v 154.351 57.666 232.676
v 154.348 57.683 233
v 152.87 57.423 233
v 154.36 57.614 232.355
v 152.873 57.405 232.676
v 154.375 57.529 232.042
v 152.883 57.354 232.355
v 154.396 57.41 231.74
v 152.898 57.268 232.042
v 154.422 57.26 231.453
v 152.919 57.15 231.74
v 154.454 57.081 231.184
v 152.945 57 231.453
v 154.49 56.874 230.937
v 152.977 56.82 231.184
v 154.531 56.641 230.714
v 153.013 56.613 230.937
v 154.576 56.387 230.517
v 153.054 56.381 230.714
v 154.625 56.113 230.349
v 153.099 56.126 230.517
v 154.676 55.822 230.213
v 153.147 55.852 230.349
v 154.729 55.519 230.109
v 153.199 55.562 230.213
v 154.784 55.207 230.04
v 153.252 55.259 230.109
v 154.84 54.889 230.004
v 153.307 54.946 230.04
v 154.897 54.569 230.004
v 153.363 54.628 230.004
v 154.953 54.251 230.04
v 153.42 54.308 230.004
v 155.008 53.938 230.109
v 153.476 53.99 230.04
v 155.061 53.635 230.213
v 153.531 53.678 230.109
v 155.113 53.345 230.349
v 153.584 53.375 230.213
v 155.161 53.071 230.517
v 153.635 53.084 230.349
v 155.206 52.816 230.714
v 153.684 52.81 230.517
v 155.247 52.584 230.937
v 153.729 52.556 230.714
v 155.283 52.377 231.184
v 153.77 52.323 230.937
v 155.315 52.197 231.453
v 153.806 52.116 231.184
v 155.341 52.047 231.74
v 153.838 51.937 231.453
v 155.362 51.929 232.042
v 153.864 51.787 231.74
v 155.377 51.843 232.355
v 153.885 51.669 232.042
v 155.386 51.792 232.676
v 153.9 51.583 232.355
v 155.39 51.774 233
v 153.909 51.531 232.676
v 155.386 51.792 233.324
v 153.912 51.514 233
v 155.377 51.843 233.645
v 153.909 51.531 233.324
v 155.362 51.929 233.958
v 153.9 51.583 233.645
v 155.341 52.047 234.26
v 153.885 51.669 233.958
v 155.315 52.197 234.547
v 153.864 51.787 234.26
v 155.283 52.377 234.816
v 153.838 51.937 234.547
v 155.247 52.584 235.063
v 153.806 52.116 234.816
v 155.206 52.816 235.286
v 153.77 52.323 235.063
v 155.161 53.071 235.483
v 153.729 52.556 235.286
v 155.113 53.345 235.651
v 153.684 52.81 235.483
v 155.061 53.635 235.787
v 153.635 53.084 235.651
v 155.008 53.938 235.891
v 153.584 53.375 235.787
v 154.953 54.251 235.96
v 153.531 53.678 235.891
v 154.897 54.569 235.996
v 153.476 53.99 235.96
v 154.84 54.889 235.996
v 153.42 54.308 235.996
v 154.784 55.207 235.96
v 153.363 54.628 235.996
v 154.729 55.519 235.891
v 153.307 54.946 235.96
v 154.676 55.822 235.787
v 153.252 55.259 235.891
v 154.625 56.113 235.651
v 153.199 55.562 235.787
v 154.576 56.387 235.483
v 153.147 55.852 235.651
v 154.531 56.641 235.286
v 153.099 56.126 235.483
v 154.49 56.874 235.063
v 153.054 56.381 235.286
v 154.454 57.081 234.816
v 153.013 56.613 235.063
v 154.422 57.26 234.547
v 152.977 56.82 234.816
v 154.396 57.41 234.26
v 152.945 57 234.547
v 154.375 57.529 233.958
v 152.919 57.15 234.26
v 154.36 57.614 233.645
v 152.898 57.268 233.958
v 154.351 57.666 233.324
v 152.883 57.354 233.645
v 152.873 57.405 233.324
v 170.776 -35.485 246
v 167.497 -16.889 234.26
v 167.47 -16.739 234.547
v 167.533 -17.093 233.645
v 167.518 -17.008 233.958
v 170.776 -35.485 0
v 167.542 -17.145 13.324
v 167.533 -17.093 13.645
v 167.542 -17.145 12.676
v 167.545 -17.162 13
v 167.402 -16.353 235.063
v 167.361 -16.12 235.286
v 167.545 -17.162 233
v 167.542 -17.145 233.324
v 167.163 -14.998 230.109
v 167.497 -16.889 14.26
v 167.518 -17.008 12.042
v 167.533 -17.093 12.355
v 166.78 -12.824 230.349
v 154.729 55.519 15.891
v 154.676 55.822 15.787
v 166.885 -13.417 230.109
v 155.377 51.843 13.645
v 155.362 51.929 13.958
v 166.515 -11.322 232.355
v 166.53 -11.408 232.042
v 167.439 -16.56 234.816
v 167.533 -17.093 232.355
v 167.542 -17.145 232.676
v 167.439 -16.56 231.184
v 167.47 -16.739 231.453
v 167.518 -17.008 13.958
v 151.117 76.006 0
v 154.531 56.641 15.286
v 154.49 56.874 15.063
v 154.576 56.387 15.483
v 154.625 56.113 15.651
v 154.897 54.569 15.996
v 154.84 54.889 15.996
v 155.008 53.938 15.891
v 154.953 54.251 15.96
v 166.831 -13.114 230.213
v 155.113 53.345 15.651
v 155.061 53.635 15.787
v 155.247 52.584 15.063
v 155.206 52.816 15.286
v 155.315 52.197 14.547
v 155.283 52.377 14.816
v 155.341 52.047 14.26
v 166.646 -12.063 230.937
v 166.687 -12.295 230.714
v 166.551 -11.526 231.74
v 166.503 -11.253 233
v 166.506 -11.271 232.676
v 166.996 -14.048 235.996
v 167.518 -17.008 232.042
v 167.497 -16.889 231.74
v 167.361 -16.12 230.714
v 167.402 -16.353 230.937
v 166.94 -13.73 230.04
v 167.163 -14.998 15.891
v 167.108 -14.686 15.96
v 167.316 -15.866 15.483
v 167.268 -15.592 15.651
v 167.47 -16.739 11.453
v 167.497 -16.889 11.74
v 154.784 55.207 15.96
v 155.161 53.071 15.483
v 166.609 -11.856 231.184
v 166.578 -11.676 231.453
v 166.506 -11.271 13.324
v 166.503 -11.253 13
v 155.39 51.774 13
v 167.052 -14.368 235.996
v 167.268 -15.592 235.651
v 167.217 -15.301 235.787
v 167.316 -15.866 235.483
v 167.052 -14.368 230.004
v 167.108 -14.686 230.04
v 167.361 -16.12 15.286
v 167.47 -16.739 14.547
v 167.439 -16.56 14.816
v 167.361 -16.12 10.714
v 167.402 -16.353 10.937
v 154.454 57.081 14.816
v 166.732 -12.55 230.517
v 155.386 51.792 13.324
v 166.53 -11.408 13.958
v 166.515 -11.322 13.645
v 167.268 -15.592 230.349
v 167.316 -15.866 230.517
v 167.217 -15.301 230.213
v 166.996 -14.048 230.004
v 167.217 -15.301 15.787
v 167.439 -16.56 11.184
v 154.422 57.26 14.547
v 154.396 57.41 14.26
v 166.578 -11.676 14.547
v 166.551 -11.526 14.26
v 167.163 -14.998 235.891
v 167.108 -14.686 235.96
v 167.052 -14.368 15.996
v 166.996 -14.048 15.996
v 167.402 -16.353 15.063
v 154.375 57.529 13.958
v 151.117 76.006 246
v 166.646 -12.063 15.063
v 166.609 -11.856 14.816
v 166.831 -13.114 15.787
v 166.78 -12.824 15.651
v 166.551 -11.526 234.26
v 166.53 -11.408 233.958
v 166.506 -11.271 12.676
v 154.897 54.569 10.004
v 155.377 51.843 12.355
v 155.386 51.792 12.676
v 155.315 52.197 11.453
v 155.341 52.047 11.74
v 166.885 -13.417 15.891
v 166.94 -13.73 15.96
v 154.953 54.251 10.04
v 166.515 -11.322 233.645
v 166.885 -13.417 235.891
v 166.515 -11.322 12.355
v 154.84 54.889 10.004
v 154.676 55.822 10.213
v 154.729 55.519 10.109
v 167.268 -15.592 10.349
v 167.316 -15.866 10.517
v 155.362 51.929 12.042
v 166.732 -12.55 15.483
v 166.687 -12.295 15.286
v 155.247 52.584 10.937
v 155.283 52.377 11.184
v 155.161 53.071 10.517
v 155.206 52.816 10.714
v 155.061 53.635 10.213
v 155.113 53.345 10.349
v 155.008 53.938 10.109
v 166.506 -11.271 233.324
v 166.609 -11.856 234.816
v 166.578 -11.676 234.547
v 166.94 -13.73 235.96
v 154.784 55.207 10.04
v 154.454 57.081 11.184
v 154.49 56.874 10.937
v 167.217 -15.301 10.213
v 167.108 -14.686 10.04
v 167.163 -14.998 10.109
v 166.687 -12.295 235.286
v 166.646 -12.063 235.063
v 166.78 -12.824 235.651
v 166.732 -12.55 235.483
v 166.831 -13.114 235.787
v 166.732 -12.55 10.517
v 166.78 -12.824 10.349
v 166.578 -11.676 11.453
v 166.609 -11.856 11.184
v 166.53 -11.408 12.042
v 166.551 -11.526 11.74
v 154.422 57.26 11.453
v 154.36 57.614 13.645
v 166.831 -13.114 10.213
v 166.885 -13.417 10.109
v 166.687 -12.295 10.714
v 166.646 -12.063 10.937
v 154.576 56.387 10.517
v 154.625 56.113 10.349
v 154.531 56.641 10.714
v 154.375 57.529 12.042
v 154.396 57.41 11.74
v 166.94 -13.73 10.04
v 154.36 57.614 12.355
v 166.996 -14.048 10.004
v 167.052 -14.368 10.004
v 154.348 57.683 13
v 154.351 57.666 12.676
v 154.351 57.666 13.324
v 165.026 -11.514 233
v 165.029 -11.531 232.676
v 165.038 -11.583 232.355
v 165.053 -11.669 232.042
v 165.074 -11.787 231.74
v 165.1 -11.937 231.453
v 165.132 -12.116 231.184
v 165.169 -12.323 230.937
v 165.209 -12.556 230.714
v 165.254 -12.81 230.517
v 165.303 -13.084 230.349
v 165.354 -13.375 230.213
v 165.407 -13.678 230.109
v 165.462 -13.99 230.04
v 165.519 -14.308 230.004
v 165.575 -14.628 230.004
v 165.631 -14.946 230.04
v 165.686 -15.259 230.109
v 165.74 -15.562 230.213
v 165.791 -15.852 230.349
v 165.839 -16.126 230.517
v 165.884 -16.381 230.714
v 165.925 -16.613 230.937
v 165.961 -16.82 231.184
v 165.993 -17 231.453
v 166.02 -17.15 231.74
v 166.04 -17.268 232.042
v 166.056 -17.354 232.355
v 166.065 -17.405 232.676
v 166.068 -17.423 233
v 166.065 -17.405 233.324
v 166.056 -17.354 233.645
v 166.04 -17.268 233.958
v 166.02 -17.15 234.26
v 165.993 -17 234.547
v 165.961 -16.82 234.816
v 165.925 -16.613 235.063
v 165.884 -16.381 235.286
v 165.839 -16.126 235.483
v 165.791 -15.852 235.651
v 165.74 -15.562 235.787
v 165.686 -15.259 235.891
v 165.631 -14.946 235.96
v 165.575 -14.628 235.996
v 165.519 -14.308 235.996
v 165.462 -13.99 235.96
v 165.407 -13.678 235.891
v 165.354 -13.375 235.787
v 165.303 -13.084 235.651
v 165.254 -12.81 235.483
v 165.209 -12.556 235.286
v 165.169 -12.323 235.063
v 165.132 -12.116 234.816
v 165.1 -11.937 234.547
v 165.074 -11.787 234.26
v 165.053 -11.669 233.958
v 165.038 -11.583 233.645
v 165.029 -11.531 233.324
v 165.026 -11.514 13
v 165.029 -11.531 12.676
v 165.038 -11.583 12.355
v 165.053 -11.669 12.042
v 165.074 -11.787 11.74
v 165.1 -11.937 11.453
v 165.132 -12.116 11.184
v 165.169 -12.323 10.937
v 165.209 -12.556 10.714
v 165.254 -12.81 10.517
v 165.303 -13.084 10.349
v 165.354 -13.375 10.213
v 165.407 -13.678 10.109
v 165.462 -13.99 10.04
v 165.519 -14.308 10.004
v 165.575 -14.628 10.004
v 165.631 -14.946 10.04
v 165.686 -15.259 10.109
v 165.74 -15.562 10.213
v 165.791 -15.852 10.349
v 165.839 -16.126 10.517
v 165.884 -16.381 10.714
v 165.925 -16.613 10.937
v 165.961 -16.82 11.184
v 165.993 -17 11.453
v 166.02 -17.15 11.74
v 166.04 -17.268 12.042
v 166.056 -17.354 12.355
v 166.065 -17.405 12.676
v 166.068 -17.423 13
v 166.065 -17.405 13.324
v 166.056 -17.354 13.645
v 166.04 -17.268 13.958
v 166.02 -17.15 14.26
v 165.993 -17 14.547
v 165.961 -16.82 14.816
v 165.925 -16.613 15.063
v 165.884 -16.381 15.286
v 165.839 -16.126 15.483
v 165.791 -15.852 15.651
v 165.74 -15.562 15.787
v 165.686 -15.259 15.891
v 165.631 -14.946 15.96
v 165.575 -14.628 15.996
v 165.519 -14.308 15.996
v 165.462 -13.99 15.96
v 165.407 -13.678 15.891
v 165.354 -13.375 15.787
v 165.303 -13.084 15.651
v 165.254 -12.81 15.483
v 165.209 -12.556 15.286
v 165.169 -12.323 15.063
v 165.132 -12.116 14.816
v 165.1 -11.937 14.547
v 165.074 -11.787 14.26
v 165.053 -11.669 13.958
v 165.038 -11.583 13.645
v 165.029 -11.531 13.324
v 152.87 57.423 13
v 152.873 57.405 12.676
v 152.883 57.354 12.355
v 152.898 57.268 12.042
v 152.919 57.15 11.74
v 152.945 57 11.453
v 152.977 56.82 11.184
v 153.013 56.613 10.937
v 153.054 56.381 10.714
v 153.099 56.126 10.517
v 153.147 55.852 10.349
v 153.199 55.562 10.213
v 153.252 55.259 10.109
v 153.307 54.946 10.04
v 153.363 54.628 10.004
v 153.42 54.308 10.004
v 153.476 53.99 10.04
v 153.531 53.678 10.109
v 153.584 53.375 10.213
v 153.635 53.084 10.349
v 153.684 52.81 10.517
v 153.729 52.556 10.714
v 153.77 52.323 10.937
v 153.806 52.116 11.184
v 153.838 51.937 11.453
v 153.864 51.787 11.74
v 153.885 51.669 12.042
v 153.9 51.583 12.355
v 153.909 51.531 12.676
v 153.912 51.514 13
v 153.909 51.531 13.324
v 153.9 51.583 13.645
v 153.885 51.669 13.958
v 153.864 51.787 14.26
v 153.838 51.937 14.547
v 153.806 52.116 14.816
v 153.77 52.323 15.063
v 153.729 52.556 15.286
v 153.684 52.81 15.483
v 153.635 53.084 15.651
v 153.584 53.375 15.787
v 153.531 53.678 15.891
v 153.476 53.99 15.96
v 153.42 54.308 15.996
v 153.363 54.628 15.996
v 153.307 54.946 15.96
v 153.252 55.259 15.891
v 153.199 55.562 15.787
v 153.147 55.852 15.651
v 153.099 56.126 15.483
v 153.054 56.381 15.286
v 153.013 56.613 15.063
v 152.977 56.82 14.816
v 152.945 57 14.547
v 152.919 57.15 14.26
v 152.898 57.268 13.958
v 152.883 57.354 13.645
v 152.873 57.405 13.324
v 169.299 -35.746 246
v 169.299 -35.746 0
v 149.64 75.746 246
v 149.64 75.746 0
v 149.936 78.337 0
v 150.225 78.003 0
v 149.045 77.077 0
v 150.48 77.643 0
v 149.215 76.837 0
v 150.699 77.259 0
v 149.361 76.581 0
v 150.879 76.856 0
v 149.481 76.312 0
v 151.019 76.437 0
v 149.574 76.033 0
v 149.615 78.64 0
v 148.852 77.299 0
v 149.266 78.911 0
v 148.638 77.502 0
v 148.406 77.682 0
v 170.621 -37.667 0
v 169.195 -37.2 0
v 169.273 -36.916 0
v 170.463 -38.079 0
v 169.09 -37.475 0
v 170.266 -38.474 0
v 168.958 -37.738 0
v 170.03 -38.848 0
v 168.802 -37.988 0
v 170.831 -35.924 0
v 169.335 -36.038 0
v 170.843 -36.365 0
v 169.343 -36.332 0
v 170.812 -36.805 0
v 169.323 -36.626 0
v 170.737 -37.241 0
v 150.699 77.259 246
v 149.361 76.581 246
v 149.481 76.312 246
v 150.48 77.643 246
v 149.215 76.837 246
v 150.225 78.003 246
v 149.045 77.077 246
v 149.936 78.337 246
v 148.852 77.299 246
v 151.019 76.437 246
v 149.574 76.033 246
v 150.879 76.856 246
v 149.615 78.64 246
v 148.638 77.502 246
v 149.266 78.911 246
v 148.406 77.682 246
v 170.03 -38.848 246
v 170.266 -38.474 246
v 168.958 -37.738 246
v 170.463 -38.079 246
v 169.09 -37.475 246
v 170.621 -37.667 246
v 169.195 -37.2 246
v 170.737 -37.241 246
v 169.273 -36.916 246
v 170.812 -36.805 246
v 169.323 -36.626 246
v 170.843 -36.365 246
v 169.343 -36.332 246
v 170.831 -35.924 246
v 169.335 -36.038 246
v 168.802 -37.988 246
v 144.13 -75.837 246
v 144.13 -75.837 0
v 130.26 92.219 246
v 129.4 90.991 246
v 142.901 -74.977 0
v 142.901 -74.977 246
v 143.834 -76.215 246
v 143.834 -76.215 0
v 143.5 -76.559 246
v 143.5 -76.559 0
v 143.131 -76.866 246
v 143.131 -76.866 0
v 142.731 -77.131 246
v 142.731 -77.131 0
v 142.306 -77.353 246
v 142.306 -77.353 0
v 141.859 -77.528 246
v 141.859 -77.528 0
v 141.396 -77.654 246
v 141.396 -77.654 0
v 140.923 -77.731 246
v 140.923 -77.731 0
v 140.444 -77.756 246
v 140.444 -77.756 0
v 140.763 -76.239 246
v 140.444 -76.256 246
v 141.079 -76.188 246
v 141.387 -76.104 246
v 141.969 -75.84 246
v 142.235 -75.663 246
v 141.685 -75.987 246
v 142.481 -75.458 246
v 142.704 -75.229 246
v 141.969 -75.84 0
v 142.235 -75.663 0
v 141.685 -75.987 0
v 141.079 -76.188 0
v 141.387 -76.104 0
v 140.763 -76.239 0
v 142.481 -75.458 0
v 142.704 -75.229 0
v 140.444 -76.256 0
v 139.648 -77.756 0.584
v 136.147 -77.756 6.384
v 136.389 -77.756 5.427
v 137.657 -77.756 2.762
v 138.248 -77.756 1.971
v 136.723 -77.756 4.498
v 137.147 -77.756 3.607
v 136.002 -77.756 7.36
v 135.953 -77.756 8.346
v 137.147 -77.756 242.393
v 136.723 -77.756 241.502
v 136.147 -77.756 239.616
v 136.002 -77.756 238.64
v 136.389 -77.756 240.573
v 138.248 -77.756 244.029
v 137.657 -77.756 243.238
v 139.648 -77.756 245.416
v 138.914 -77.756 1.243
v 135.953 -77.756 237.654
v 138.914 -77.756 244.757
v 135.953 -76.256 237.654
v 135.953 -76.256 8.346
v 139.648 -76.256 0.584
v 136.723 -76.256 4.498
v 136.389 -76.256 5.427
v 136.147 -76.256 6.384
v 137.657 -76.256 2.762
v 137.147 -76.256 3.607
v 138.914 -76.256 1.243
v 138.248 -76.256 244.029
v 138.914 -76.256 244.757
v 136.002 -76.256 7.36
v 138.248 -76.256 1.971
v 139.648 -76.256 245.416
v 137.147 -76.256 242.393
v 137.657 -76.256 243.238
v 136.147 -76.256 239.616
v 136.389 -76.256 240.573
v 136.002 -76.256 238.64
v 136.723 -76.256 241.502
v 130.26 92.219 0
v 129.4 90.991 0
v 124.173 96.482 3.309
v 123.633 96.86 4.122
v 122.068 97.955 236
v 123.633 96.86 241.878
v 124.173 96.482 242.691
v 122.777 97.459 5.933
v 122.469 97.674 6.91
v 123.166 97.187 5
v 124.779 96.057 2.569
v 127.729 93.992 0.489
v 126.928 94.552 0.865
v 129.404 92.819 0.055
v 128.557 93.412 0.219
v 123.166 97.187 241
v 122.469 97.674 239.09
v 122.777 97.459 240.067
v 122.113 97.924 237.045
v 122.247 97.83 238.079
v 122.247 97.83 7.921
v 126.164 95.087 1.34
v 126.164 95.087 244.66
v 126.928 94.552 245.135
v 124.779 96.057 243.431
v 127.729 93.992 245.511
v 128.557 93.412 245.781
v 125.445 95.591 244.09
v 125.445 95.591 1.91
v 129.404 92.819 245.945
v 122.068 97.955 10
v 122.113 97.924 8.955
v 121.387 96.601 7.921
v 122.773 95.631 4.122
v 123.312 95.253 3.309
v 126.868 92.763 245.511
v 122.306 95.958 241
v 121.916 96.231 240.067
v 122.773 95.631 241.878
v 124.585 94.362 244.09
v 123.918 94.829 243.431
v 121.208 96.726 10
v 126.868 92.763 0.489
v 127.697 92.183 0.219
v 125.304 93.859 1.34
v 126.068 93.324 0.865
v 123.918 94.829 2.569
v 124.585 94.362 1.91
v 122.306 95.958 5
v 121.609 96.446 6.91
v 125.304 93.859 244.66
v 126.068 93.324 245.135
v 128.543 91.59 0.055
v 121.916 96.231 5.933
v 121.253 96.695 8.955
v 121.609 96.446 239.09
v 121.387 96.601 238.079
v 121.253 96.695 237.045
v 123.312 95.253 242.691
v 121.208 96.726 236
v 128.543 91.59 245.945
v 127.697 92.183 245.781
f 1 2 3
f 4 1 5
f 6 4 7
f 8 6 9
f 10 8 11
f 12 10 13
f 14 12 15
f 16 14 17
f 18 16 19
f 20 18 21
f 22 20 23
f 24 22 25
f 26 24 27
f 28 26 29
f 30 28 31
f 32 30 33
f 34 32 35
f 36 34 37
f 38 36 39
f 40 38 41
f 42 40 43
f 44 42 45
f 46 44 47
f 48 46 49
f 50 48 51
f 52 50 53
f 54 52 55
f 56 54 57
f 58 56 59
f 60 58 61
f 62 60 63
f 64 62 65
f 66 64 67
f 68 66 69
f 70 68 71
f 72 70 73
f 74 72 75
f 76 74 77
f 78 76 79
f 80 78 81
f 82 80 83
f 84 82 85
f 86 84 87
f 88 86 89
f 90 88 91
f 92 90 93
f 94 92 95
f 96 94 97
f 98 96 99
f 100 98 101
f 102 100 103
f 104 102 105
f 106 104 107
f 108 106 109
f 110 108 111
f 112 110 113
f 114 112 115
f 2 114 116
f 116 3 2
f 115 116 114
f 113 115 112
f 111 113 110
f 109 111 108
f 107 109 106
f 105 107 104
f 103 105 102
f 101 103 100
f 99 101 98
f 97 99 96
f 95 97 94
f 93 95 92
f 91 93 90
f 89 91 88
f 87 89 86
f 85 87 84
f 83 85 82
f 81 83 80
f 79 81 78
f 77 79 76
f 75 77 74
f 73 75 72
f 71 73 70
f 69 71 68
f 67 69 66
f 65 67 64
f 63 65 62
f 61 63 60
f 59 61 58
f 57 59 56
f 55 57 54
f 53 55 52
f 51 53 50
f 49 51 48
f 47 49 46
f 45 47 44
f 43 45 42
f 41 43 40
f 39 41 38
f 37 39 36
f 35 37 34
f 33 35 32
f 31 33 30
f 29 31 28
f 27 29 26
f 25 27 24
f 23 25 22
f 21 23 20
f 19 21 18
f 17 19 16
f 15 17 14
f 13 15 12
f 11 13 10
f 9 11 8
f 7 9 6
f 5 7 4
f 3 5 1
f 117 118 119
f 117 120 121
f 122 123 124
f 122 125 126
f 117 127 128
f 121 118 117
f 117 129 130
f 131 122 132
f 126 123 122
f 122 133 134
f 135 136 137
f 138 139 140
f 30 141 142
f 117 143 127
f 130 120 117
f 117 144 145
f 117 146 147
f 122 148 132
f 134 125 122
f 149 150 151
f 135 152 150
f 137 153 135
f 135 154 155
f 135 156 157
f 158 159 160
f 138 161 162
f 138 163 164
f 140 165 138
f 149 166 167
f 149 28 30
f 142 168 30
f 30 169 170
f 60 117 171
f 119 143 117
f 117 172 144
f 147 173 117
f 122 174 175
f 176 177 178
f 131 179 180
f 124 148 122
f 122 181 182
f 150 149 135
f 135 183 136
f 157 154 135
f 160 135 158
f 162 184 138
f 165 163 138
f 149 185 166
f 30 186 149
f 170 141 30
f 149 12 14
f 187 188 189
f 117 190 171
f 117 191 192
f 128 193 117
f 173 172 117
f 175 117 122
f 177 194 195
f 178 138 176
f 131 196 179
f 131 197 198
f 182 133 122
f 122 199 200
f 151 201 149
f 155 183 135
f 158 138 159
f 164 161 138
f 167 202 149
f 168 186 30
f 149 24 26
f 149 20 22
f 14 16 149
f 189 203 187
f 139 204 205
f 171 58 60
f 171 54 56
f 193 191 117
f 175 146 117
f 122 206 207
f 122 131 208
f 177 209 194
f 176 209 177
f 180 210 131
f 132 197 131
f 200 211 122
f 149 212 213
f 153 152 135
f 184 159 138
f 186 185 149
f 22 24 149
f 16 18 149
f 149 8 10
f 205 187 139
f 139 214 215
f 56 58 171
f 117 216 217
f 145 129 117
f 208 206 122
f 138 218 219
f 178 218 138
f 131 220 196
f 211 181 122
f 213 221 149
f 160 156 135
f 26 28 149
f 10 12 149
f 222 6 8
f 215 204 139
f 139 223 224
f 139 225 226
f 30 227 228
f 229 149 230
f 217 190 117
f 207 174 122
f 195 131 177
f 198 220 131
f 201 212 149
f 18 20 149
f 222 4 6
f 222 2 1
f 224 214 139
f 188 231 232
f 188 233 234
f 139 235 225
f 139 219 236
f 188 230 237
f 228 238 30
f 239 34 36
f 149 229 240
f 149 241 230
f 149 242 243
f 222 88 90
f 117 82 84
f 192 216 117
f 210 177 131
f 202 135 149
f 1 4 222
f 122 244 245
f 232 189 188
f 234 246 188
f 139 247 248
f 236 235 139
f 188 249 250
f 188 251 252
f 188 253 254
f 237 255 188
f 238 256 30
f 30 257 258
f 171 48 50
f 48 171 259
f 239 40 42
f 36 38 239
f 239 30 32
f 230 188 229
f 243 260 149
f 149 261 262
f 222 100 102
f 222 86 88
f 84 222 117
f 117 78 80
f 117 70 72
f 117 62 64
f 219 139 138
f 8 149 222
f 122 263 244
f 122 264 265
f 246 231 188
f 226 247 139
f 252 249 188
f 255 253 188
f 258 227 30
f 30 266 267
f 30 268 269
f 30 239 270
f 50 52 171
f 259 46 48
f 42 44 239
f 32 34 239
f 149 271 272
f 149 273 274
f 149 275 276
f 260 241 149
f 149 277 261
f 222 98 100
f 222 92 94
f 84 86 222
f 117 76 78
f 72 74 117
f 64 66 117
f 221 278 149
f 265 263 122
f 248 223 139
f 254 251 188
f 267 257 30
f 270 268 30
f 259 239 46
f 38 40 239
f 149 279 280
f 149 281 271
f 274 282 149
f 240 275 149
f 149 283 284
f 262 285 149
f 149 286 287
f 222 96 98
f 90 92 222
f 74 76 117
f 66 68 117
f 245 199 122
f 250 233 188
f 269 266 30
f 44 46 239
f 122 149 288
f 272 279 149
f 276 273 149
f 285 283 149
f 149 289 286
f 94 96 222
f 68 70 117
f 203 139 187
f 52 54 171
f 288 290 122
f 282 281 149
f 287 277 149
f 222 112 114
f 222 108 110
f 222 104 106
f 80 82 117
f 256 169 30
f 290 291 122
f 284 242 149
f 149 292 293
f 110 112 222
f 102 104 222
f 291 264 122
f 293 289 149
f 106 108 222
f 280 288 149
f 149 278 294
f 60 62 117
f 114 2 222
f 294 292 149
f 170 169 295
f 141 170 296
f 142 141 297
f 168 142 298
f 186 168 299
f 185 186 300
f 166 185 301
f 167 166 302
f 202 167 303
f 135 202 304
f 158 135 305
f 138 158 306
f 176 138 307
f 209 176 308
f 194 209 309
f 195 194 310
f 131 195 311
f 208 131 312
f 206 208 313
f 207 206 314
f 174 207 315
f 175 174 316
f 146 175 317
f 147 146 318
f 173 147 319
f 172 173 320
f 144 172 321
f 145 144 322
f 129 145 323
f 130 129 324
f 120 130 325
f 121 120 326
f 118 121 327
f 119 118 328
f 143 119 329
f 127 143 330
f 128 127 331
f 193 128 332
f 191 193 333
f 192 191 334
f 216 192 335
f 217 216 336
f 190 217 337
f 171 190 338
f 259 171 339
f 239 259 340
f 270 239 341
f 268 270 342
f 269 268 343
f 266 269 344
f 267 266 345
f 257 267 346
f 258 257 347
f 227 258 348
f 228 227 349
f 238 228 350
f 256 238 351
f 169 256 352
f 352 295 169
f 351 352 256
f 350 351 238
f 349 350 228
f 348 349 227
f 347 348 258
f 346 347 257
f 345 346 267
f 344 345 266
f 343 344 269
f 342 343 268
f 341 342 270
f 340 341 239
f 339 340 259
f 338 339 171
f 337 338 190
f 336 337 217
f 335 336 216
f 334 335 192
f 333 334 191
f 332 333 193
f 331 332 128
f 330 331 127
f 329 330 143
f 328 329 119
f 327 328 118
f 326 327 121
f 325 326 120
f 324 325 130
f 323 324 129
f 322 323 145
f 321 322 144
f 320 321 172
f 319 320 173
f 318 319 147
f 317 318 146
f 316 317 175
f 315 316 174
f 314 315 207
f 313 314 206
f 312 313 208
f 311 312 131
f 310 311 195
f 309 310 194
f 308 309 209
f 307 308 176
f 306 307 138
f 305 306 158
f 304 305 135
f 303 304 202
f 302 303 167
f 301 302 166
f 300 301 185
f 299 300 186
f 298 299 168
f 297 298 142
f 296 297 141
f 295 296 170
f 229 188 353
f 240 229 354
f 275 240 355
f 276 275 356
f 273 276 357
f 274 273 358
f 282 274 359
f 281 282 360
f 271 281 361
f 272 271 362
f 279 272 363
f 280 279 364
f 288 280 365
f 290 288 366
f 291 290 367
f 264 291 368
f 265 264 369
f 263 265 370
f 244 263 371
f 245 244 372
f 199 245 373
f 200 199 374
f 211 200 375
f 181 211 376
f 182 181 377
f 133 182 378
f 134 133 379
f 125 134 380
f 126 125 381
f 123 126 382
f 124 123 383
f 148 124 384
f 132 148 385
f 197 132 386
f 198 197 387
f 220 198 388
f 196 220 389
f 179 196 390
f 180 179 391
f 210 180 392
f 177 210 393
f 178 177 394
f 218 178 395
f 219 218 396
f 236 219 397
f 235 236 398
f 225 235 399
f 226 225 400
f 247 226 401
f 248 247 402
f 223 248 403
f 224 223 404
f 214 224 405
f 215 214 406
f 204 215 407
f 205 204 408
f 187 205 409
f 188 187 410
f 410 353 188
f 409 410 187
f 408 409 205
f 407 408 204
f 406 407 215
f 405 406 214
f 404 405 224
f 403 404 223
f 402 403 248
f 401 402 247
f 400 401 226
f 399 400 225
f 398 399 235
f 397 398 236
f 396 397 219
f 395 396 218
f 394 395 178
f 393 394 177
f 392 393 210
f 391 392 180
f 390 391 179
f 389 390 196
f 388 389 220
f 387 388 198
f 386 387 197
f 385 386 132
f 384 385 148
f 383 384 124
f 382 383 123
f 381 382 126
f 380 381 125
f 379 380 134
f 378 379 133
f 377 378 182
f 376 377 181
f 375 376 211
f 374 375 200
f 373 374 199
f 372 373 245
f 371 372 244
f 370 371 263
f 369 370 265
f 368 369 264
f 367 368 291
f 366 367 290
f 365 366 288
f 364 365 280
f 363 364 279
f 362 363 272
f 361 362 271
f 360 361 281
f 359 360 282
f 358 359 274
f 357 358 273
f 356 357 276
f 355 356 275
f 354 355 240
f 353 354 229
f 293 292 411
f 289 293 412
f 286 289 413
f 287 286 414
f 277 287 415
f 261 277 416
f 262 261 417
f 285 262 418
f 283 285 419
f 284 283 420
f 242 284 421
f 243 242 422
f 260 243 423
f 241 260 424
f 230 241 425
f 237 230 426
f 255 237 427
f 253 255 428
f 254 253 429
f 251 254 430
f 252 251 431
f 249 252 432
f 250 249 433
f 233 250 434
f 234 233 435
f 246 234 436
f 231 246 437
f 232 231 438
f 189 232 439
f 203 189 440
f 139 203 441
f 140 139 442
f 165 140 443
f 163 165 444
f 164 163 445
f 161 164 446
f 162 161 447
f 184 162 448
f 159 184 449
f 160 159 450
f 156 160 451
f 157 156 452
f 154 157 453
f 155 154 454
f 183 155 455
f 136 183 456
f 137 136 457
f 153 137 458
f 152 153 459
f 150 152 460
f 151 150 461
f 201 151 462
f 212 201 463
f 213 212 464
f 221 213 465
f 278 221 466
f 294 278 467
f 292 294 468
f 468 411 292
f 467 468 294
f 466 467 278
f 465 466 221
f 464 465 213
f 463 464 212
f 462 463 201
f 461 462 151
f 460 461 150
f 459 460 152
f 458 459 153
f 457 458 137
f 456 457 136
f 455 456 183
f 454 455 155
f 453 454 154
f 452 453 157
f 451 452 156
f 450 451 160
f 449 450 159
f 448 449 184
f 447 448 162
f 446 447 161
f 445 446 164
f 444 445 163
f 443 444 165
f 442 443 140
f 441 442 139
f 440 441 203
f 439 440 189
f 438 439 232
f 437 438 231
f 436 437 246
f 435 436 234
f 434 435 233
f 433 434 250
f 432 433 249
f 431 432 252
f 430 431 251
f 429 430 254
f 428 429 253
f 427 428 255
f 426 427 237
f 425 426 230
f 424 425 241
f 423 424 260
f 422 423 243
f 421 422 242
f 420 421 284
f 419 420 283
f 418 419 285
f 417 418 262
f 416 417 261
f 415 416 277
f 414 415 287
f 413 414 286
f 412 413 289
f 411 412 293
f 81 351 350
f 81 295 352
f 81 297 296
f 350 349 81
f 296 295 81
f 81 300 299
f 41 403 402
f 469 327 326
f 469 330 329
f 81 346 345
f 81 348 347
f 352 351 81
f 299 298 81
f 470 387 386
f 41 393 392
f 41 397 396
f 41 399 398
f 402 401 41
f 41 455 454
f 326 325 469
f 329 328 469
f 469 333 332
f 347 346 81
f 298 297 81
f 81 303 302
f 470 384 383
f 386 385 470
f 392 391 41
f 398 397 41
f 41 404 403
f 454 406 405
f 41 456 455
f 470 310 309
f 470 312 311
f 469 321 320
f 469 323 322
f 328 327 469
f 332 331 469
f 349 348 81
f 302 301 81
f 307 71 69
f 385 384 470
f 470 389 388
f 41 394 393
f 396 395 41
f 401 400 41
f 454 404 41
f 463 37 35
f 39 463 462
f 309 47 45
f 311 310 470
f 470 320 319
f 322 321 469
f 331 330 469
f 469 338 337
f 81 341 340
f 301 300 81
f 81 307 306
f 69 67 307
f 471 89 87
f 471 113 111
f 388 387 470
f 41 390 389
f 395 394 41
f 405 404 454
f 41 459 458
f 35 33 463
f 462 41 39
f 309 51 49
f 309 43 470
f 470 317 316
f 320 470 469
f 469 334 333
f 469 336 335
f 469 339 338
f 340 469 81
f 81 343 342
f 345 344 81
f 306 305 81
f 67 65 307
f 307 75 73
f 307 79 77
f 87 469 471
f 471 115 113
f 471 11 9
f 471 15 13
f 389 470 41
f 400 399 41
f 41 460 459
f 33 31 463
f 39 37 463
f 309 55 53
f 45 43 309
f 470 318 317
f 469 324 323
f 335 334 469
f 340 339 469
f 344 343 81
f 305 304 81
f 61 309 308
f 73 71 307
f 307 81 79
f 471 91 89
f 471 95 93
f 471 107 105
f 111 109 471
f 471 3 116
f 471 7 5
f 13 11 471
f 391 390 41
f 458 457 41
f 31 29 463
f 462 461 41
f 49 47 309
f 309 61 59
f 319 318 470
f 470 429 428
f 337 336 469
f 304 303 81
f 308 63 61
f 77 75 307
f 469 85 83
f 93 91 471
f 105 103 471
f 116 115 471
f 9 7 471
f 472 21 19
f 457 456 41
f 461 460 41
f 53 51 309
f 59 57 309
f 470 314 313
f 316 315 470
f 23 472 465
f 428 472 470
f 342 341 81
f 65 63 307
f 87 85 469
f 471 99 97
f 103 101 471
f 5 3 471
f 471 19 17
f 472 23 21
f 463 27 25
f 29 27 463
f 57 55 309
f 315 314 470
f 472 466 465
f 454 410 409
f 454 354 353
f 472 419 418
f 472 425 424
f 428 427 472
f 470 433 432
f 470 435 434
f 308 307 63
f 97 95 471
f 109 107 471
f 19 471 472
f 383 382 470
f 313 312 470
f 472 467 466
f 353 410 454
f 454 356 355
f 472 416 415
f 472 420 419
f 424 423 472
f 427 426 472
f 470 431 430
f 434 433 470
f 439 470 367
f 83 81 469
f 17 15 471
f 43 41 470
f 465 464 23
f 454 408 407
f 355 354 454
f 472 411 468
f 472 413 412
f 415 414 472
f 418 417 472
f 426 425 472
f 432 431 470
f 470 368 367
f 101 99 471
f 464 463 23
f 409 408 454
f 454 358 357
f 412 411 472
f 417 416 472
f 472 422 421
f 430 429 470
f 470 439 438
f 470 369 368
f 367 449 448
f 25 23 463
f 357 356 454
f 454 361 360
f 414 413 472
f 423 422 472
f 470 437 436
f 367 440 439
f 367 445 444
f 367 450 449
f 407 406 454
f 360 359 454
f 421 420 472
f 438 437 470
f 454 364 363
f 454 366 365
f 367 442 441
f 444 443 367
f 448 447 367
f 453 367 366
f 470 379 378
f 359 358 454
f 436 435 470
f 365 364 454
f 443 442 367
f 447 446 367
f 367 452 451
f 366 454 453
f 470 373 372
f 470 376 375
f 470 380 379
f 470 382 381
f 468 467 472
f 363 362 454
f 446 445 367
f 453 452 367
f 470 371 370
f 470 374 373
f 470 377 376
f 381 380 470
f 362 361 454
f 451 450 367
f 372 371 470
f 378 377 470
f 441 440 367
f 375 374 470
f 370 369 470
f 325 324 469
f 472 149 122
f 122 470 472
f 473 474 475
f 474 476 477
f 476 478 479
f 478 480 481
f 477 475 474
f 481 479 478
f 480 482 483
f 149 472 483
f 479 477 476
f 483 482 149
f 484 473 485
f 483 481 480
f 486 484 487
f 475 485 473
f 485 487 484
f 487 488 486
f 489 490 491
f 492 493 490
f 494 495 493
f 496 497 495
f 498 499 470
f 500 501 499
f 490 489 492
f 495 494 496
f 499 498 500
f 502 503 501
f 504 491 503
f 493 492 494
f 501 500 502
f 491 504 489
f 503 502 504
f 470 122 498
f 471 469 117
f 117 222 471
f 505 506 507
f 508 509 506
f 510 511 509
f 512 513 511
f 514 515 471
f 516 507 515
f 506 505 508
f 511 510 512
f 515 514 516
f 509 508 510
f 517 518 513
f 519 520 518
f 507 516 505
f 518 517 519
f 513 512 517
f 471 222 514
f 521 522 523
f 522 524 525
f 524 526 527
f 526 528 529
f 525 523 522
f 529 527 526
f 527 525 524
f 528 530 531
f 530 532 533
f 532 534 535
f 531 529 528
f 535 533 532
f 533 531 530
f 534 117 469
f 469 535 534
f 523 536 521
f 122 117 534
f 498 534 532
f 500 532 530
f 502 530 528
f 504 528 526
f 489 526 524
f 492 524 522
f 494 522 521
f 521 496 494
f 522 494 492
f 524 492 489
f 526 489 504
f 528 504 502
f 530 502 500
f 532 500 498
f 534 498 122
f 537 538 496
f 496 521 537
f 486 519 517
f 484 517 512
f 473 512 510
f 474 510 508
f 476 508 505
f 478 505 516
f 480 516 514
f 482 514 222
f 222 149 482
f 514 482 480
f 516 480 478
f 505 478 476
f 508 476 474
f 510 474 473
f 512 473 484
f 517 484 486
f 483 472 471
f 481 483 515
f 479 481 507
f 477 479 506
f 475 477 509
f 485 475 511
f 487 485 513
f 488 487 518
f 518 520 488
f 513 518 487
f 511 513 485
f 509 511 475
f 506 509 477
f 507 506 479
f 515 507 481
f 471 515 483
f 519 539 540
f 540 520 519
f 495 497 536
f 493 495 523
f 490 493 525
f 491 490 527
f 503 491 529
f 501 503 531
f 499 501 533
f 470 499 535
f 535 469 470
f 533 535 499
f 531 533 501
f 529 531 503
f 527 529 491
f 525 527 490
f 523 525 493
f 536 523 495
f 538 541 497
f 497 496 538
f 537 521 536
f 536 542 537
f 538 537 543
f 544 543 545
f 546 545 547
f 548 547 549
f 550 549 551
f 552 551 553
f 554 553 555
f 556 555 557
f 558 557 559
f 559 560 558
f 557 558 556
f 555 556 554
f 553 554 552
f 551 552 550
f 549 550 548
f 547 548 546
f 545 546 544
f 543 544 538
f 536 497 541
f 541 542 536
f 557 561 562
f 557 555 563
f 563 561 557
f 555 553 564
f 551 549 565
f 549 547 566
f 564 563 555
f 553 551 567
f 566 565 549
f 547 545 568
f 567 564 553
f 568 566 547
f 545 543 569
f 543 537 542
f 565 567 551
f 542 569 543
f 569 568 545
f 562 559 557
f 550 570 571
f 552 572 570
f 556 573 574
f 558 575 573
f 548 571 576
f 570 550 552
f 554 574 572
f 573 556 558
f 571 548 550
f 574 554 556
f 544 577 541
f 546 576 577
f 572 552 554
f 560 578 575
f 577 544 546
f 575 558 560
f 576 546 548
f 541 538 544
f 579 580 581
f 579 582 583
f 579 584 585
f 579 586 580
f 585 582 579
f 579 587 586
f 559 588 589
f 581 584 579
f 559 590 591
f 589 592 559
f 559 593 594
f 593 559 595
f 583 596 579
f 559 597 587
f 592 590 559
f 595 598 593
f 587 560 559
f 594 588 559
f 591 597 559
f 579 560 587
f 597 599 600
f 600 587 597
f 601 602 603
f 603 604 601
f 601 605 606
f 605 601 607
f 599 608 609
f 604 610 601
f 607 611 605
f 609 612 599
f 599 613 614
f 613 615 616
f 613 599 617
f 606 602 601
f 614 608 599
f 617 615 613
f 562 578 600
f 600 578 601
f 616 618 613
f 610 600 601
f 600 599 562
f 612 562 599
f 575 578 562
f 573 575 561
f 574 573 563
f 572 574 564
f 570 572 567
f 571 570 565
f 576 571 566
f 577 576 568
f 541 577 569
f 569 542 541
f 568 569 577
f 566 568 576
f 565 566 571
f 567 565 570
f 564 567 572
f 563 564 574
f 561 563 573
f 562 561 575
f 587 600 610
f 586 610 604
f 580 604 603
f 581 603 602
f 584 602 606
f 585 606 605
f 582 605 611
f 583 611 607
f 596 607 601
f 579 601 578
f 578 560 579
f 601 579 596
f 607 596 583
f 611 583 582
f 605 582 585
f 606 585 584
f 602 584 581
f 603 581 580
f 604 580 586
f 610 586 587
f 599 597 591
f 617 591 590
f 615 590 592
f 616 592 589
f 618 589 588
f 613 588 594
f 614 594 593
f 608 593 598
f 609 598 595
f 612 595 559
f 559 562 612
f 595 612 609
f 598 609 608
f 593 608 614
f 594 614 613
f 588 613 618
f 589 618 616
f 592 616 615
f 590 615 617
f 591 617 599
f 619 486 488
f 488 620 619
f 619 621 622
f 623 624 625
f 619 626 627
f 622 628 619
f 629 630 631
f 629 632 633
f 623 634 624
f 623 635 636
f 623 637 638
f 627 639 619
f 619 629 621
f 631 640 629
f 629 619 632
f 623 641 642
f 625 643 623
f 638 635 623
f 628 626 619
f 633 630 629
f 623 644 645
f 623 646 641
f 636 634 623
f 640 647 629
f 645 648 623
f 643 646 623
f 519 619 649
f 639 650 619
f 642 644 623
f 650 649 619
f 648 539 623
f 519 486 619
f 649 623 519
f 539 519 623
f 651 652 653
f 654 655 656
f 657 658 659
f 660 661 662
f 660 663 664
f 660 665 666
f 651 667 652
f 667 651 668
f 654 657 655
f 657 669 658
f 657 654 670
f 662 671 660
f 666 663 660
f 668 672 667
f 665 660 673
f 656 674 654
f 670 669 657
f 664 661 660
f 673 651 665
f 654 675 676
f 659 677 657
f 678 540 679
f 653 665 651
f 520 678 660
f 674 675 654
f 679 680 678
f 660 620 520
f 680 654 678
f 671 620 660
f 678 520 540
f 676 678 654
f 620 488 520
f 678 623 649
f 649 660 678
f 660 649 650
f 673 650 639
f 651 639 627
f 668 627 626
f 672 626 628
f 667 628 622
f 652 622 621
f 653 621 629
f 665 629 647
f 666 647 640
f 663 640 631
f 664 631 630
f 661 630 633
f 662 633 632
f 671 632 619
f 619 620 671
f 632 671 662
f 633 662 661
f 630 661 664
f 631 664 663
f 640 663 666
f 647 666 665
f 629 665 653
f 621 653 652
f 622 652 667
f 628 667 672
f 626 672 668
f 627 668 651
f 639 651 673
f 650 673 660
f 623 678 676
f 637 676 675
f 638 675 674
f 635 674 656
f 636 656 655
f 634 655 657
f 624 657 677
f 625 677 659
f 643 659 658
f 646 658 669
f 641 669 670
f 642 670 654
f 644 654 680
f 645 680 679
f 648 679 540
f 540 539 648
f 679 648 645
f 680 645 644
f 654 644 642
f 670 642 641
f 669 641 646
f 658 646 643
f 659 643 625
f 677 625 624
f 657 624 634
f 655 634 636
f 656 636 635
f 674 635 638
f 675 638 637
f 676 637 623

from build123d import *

# Parameters (mm, degrees)
BASE_FLANGE1_DEPTH = 246
FILLET1_START      = -79
FILLET1_DEPTH      = 4
FILLET1_START_2    = 148
FILLET1_2_DEPTH    = 3
SKETCH6_R          = 3
CUT_EXTRUDE1_DEPTH = 1.5


with BuildPart() as part:
    # Base-Flange1: sheet metal written as solids
    # Sketch1 → Base-Flange1 (new body)
    with BuildSketch(Plane.XY):
        with BuildLine():
            Line((135.953063945, -76.256345678), (140.443766564, -76.256345678))
            ThreePointArc((140.443766564, -76.256345678), (141.829012404, -75.917378177), (142.901222697, -74.977074987))
            Line((142.901222697, -74.977074987), (168.801582917, -37.987527165))
            ThreePointArc((168.801582917, -37.987527165), (169.273014805, -36.916116698), (169.298550043, -35.745853323))
            Line((169.298550043, -35.745853323), (169.167035978, -35))
            Line((169.167035978, -35), (149.639554036, 75.745853323))
            ThreePointArc((149.639554036, 75.745853323), (149.215305114, 76.836807615), (148.405860086, 77.682364923))
            Line((148.405860086, 77.682364923), (121.208107966, 96.72643598))
            Line((121.208107966, 96.72643598), (122.06847262, 97.955164046))
            Line((122.06847262, 97.955164046), (149.266224741, 78.911092989))
            ThreePointArc((149.266224741, 78.911092989), (150.480392283, 77.642757028), (151.116765666, 76.00632559))
            Line((151.116765666, 76.00632559), (170.644247608, -34.739527733))
            Line((170.644247608, -34.739527733), (170.775761672, -35.485381057))
            ThreePointArc((170.775761672, -35.485381057), (170.737458816, -37.240776119), (170.030310983, -38.84789182))
            Line((170.030310983, -38.84789182), (144.129950763, -75.837439642))
            ThreePointArc((144.129950763, -75.837439642), (142.521635324, -77.247894427), (140.443766564, -77.756345678))
            Line((140.443766564, -77.756345678), (135.953063945, -77.756345678))
            Line((135.953063945, -77.756345678), (135.953063945, -76.256345678))
        make_face()
    extrude(amount=BASE_FLANGE1_DEPTH)

    # Fillet1: read off the stored shape, not the designer's step
    # Fillet1 outline → Fillet1 (cut)
    with BuildSketch(Plane(origin=(0, 0, 0), x_dir=(1, 0, 0), z_dir=(0, 1, 0)).offset(FILLET1_START)):
        with BuildLine():
            Line((135.953063945, 0), (135.953063945, -8.345516304))
            ThreePointArc((135.953063945, -8.345516304), (137.147015631, -3.607002497), (140.443766564, 0))
            Line((140.443766564, 0), (135.953063945, 0))
        make_face()
        with BuildLine():
            ThreePointArc((140.443766564, -246), (137.147015631, -242.392997503), (135.953063945, -237.654483696))
            Line((135.953063945, -237.654483696), (135.953063945, -246))
            Line((135.953063945, -246), (140.443766564, -246))
        make_face()
    extrude(amount=FILLET1_DEPTH, mode=Mode.SUBTRACT)

    # Fillet1 2 outline → Fillet1 2 (cut)
    with BuildSketch(Plane(origin=(0, 0, 0), x_dir=(0.819152044288989, -0.5735764363510502, 0), z_dir=(0.57357643635105, 0.819152044288989, 0)).offset(FILLET1_START_2)):
        with BuildLine():
            Line((43.807864974, 0), (43.807864974, -10))
            ThreePointArc((43.807864974, -10), (46.736797162, -2.928932188), (53.807864974, 0))
            Line((53.807864974, 0), (43.807864974, 0))
        make_face()
        with BuildLine():
            ThreePointArc((53.807864974, -246), (46.736797162, -243.071067812), (43.807864974, -236))
            Line((43.807864974, -236), (43.807864974, -246))
            Line((43.807864974, -246), (53.807864974, -246))
        make_face()
    extrude(amount=FILLET1_2_DEPTH, mode=Mode.SUBTRACT)

    # Sketch6 → Cut-Extrude1 (cut)
    with BuildSketch(Plane(origin=(159.557884805, 28.134360076, 0), x_dir=(0, 0, -1), z_dir=(0.984807753012208, 0.17364817766693147, 0))):
        with Locations(Location((-233, 27.004644779, 0), (0, 0, 90))):
            Circle(SKETCH6_R)
        with Locations(Location((-233, -42.995355221, 0), (0, 0, 90))):
            Circle(SKETCH6_R)
        with Locations(Location((-13, -42.995355221, 0), (0, 0, 90))):
            Circle(SKETCH6_R)
        with Locations(Location((-13, 27.004644779, 0), (0, 0, 90))):
            Circle(SKETCH6_R)
    extrude(amount=-CUT_EXTRUDE1_DEPTH, mode=Mode.SUBTRACT)


solid = part.part
